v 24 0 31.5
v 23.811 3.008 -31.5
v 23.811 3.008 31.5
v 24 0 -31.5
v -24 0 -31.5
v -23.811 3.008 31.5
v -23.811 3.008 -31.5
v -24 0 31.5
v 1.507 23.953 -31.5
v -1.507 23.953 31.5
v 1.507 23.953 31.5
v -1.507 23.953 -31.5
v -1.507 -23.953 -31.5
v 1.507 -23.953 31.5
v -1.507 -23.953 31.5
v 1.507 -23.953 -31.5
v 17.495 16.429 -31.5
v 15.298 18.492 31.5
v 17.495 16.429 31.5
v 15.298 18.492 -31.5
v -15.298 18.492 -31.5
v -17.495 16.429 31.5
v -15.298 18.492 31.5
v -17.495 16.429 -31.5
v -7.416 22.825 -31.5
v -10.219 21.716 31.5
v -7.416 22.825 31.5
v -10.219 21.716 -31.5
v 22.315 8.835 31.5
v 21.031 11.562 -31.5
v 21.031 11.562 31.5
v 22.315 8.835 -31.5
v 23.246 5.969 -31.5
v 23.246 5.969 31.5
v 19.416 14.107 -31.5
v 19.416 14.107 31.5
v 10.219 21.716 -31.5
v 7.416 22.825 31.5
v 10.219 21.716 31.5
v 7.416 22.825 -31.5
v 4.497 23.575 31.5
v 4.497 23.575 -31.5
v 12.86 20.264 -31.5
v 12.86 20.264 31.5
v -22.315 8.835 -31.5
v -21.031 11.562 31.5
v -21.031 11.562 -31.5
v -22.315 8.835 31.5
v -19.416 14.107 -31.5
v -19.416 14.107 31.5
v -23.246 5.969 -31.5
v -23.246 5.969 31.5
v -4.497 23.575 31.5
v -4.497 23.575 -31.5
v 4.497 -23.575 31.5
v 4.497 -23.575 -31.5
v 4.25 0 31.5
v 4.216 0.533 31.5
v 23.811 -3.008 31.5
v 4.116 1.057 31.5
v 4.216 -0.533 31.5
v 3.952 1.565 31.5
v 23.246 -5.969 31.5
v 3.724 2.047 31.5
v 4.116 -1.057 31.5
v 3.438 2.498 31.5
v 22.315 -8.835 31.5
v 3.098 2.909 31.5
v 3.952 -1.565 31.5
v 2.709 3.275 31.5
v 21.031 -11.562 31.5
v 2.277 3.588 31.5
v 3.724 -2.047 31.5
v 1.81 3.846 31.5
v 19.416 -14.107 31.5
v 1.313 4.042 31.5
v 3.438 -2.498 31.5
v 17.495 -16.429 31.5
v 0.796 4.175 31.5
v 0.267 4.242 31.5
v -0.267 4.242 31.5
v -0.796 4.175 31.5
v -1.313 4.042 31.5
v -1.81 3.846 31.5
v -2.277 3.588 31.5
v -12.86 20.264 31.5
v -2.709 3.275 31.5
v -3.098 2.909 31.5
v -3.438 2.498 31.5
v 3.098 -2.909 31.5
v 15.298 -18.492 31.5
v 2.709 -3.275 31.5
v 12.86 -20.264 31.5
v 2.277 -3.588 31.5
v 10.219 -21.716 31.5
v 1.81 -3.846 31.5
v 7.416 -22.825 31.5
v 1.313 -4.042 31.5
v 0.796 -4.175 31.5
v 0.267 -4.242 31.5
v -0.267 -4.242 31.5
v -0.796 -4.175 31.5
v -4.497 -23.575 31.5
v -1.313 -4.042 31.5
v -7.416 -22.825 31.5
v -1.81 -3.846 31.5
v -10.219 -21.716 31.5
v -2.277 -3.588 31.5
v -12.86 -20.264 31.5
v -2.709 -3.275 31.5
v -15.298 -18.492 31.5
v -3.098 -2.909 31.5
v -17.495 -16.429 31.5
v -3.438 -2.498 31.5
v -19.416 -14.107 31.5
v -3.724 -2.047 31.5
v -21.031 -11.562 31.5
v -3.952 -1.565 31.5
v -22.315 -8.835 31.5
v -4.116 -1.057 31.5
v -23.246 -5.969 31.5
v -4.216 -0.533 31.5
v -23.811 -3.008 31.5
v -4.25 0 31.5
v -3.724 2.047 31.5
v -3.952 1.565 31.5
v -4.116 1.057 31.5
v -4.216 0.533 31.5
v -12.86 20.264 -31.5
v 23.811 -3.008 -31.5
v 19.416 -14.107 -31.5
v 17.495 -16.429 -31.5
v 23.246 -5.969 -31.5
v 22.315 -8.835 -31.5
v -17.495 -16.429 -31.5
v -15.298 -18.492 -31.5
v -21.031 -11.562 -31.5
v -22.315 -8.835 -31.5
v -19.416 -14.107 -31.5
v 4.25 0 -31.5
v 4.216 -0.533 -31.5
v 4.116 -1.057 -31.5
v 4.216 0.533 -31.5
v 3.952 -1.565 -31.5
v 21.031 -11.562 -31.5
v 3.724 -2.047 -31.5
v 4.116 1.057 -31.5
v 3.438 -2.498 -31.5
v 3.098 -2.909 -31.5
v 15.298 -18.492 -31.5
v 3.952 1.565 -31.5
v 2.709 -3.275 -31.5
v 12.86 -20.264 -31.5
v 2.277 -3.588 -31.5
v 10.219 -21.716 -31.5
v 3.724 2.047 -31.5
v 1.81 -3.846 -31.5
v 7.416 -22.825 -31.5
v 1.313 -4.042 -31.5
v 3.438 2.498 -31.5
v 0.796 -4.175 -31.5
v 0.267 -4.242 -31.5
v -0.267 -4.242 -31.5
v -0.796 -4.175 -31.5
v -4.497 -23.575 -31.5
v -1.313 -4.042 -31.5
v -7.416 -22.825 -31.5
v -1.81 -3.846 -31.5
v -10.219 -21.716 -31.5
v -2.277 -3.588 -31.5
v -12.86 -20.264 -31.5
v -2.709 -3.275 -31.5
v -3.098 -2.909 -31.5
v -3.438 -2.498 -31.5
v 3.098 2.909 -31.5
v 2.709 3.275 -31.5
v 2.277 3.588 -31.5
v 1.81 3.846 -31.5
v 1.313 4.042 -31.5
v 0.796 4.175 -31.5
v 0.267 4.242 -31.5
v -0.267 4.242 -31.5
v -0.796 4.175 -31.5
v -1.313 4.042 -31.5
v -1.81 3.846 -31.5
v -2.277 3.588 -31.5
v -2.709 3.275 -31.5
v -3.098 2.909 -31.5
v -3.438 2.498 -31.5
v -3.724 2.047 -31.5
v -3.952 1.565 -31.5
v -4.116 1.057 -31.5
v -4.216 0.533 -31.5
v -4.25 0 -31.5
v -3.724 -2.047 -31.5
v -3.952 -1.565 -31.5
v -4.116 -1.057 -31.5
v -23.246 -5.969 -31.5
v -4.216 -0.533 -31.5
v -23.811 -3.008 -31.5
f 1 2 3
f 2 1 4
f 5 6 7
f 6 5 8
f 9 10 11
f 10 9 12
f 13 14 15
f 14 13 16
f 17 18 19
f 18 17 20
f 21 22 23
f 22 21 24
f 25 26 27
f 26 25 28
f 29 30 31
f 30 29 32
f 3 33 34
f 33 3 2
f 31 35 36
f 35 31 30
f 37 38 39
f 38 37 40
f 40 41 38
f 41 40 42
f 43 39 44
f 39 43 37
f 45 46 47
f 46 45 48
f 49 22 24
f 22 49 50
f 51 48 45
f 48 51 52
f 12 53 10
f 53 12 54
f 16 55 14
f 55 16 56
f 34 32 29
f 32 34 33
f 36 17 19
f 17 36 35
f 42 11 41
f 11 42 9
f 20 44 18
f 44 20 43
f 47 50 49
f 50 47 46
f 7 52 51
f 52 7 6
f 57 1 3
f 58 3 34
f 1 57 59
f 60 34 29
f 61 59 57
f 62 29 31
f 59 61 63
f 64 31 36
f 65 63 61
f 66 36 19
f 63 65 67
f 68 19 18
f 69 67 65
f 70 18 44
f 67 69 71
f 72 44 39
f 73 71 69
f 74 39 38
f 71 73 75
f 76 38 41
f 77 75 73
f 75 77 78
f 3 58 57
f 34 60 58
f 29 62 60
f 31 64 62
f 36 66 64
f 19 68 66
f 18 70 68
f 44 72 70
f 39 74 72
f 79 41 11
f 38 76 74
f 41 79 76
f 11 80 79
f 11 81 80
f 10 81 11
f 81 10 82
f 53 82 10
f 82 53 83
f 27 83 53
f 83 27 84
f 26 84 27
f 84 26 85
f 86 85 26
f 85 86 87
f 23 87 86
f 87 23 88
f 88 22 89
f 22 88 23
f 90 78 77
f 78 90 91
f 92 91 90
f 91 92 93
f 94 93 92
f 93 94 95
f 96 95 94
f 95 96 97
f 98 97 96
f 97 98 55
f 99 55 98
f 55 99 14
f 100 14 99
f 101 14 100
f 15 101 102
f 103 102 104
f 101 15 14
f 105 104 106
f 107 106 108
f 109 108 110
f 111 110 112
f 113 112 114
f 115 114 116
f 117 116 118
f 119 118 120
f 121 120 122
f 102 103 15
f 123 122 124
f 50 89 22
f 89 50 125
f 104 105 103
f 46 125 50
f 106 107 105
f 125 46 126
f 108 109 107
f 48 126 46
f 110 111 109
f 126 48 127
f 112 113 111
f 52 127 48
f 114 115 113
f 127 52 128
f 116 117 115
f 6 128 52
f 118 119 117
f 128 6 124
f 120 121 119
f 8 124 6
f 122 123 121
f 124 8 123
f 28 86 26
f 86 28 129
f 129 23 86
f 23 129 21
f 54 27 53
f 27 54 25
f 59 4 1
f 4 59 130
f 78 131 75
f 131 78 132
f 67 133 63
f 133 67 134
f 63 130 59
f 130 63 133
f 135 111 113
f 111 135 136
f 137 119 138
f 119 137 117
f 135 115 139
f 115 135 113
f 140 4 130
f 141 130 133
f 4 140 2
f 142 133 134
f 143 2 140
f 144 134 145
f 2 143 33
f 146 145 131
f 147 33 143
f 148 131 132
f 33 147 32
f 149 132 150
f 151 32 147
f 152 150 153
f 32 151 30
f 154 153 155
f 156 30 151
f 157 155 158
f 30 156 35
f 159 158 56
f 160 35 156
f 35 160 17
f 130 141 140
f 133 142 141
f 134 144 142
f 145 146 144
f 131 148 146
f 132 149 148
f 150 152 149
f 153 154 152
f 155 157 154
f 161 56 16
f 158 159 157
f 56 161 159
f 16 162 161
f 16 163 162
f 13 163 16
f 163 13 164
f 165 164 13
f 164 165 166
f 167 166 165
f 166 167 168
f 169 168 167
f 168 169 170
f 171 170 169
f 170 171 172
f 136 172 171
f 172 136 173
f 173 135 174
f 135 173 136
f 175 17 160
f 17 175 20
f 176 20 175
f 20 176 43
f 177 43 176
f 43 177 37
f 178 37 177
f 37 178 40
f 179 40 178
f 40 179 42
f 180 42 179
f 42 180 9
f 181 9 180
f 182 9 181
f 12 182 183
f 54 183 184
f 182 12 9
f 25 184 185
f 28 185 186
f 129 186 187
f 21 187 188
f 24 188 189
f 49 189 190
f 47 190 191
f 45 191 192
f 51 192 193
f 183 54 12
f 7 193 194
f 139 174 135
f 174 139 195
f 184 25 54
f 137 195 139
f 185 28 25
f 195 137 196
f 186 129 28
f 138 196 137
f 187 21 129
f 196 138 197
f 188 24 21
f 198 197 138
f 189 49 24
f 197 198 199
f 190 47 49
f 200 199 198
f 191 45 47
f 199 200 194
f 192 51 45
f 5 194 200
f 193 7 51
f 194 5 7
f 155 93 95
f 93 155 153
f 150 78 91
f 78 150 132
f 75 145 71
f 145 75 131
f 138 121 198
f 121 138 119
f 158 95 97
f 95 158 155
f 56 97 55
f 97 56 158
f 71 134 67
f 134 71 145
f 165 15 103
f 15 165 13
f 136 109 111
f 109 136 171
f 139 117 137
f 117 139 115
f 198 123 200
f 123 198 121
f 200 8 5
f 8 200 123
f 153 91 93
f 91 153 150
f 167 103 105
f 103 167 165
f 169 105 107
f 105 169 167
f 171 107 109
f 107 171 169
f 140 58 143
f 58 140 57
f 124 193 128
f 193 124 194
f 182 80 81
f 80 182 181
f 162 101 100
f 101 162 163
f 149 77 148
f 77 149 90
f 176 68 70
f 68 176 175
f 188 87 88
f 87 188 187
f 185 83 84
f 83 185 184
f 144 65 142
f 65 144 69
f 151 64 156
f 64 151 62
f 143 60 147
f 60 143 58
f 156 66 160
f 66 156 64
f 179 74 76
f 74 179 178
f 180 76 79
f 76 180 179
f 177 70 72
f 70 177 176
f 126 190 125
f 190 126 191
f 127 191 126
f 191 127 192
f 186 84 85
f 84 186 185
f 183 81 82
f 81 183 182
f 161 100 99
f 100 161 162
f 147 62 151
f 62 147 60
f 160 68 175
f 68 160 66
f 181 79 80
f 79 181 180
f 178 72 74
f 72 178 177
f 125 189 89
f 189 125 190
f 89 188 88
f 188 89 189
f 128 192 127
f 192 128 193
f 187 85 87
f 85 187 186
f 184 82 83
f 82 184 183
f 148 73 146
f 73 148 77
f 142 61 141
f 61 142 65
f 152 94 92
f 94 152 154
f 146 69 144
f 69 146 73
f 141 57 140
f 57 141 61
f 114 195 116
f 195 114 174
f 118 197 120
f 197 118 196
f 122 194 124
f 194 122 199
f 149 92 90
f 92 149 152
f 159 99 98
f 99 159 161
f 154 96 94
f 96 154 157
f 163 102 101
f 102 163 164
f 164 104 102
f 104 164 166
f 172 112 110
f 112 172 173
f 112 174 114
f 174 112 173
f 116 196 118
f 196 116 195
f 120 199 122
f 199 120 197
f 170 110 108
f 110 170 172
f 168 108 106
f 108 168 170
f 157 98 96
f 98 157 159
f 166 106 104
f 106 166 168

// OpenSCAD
$fn = 50;


difference() {
	union() {
		translate(v = [0, 0, -31.5000000000]) {
			cylinder(h = 63, r = 24.0000000000);
		}
	}
	union() {
		translate(v = [0, 0, -100.0000000000]) {
			cylinder(h = 200, r = 4.2500000000);
		}
	}
}
